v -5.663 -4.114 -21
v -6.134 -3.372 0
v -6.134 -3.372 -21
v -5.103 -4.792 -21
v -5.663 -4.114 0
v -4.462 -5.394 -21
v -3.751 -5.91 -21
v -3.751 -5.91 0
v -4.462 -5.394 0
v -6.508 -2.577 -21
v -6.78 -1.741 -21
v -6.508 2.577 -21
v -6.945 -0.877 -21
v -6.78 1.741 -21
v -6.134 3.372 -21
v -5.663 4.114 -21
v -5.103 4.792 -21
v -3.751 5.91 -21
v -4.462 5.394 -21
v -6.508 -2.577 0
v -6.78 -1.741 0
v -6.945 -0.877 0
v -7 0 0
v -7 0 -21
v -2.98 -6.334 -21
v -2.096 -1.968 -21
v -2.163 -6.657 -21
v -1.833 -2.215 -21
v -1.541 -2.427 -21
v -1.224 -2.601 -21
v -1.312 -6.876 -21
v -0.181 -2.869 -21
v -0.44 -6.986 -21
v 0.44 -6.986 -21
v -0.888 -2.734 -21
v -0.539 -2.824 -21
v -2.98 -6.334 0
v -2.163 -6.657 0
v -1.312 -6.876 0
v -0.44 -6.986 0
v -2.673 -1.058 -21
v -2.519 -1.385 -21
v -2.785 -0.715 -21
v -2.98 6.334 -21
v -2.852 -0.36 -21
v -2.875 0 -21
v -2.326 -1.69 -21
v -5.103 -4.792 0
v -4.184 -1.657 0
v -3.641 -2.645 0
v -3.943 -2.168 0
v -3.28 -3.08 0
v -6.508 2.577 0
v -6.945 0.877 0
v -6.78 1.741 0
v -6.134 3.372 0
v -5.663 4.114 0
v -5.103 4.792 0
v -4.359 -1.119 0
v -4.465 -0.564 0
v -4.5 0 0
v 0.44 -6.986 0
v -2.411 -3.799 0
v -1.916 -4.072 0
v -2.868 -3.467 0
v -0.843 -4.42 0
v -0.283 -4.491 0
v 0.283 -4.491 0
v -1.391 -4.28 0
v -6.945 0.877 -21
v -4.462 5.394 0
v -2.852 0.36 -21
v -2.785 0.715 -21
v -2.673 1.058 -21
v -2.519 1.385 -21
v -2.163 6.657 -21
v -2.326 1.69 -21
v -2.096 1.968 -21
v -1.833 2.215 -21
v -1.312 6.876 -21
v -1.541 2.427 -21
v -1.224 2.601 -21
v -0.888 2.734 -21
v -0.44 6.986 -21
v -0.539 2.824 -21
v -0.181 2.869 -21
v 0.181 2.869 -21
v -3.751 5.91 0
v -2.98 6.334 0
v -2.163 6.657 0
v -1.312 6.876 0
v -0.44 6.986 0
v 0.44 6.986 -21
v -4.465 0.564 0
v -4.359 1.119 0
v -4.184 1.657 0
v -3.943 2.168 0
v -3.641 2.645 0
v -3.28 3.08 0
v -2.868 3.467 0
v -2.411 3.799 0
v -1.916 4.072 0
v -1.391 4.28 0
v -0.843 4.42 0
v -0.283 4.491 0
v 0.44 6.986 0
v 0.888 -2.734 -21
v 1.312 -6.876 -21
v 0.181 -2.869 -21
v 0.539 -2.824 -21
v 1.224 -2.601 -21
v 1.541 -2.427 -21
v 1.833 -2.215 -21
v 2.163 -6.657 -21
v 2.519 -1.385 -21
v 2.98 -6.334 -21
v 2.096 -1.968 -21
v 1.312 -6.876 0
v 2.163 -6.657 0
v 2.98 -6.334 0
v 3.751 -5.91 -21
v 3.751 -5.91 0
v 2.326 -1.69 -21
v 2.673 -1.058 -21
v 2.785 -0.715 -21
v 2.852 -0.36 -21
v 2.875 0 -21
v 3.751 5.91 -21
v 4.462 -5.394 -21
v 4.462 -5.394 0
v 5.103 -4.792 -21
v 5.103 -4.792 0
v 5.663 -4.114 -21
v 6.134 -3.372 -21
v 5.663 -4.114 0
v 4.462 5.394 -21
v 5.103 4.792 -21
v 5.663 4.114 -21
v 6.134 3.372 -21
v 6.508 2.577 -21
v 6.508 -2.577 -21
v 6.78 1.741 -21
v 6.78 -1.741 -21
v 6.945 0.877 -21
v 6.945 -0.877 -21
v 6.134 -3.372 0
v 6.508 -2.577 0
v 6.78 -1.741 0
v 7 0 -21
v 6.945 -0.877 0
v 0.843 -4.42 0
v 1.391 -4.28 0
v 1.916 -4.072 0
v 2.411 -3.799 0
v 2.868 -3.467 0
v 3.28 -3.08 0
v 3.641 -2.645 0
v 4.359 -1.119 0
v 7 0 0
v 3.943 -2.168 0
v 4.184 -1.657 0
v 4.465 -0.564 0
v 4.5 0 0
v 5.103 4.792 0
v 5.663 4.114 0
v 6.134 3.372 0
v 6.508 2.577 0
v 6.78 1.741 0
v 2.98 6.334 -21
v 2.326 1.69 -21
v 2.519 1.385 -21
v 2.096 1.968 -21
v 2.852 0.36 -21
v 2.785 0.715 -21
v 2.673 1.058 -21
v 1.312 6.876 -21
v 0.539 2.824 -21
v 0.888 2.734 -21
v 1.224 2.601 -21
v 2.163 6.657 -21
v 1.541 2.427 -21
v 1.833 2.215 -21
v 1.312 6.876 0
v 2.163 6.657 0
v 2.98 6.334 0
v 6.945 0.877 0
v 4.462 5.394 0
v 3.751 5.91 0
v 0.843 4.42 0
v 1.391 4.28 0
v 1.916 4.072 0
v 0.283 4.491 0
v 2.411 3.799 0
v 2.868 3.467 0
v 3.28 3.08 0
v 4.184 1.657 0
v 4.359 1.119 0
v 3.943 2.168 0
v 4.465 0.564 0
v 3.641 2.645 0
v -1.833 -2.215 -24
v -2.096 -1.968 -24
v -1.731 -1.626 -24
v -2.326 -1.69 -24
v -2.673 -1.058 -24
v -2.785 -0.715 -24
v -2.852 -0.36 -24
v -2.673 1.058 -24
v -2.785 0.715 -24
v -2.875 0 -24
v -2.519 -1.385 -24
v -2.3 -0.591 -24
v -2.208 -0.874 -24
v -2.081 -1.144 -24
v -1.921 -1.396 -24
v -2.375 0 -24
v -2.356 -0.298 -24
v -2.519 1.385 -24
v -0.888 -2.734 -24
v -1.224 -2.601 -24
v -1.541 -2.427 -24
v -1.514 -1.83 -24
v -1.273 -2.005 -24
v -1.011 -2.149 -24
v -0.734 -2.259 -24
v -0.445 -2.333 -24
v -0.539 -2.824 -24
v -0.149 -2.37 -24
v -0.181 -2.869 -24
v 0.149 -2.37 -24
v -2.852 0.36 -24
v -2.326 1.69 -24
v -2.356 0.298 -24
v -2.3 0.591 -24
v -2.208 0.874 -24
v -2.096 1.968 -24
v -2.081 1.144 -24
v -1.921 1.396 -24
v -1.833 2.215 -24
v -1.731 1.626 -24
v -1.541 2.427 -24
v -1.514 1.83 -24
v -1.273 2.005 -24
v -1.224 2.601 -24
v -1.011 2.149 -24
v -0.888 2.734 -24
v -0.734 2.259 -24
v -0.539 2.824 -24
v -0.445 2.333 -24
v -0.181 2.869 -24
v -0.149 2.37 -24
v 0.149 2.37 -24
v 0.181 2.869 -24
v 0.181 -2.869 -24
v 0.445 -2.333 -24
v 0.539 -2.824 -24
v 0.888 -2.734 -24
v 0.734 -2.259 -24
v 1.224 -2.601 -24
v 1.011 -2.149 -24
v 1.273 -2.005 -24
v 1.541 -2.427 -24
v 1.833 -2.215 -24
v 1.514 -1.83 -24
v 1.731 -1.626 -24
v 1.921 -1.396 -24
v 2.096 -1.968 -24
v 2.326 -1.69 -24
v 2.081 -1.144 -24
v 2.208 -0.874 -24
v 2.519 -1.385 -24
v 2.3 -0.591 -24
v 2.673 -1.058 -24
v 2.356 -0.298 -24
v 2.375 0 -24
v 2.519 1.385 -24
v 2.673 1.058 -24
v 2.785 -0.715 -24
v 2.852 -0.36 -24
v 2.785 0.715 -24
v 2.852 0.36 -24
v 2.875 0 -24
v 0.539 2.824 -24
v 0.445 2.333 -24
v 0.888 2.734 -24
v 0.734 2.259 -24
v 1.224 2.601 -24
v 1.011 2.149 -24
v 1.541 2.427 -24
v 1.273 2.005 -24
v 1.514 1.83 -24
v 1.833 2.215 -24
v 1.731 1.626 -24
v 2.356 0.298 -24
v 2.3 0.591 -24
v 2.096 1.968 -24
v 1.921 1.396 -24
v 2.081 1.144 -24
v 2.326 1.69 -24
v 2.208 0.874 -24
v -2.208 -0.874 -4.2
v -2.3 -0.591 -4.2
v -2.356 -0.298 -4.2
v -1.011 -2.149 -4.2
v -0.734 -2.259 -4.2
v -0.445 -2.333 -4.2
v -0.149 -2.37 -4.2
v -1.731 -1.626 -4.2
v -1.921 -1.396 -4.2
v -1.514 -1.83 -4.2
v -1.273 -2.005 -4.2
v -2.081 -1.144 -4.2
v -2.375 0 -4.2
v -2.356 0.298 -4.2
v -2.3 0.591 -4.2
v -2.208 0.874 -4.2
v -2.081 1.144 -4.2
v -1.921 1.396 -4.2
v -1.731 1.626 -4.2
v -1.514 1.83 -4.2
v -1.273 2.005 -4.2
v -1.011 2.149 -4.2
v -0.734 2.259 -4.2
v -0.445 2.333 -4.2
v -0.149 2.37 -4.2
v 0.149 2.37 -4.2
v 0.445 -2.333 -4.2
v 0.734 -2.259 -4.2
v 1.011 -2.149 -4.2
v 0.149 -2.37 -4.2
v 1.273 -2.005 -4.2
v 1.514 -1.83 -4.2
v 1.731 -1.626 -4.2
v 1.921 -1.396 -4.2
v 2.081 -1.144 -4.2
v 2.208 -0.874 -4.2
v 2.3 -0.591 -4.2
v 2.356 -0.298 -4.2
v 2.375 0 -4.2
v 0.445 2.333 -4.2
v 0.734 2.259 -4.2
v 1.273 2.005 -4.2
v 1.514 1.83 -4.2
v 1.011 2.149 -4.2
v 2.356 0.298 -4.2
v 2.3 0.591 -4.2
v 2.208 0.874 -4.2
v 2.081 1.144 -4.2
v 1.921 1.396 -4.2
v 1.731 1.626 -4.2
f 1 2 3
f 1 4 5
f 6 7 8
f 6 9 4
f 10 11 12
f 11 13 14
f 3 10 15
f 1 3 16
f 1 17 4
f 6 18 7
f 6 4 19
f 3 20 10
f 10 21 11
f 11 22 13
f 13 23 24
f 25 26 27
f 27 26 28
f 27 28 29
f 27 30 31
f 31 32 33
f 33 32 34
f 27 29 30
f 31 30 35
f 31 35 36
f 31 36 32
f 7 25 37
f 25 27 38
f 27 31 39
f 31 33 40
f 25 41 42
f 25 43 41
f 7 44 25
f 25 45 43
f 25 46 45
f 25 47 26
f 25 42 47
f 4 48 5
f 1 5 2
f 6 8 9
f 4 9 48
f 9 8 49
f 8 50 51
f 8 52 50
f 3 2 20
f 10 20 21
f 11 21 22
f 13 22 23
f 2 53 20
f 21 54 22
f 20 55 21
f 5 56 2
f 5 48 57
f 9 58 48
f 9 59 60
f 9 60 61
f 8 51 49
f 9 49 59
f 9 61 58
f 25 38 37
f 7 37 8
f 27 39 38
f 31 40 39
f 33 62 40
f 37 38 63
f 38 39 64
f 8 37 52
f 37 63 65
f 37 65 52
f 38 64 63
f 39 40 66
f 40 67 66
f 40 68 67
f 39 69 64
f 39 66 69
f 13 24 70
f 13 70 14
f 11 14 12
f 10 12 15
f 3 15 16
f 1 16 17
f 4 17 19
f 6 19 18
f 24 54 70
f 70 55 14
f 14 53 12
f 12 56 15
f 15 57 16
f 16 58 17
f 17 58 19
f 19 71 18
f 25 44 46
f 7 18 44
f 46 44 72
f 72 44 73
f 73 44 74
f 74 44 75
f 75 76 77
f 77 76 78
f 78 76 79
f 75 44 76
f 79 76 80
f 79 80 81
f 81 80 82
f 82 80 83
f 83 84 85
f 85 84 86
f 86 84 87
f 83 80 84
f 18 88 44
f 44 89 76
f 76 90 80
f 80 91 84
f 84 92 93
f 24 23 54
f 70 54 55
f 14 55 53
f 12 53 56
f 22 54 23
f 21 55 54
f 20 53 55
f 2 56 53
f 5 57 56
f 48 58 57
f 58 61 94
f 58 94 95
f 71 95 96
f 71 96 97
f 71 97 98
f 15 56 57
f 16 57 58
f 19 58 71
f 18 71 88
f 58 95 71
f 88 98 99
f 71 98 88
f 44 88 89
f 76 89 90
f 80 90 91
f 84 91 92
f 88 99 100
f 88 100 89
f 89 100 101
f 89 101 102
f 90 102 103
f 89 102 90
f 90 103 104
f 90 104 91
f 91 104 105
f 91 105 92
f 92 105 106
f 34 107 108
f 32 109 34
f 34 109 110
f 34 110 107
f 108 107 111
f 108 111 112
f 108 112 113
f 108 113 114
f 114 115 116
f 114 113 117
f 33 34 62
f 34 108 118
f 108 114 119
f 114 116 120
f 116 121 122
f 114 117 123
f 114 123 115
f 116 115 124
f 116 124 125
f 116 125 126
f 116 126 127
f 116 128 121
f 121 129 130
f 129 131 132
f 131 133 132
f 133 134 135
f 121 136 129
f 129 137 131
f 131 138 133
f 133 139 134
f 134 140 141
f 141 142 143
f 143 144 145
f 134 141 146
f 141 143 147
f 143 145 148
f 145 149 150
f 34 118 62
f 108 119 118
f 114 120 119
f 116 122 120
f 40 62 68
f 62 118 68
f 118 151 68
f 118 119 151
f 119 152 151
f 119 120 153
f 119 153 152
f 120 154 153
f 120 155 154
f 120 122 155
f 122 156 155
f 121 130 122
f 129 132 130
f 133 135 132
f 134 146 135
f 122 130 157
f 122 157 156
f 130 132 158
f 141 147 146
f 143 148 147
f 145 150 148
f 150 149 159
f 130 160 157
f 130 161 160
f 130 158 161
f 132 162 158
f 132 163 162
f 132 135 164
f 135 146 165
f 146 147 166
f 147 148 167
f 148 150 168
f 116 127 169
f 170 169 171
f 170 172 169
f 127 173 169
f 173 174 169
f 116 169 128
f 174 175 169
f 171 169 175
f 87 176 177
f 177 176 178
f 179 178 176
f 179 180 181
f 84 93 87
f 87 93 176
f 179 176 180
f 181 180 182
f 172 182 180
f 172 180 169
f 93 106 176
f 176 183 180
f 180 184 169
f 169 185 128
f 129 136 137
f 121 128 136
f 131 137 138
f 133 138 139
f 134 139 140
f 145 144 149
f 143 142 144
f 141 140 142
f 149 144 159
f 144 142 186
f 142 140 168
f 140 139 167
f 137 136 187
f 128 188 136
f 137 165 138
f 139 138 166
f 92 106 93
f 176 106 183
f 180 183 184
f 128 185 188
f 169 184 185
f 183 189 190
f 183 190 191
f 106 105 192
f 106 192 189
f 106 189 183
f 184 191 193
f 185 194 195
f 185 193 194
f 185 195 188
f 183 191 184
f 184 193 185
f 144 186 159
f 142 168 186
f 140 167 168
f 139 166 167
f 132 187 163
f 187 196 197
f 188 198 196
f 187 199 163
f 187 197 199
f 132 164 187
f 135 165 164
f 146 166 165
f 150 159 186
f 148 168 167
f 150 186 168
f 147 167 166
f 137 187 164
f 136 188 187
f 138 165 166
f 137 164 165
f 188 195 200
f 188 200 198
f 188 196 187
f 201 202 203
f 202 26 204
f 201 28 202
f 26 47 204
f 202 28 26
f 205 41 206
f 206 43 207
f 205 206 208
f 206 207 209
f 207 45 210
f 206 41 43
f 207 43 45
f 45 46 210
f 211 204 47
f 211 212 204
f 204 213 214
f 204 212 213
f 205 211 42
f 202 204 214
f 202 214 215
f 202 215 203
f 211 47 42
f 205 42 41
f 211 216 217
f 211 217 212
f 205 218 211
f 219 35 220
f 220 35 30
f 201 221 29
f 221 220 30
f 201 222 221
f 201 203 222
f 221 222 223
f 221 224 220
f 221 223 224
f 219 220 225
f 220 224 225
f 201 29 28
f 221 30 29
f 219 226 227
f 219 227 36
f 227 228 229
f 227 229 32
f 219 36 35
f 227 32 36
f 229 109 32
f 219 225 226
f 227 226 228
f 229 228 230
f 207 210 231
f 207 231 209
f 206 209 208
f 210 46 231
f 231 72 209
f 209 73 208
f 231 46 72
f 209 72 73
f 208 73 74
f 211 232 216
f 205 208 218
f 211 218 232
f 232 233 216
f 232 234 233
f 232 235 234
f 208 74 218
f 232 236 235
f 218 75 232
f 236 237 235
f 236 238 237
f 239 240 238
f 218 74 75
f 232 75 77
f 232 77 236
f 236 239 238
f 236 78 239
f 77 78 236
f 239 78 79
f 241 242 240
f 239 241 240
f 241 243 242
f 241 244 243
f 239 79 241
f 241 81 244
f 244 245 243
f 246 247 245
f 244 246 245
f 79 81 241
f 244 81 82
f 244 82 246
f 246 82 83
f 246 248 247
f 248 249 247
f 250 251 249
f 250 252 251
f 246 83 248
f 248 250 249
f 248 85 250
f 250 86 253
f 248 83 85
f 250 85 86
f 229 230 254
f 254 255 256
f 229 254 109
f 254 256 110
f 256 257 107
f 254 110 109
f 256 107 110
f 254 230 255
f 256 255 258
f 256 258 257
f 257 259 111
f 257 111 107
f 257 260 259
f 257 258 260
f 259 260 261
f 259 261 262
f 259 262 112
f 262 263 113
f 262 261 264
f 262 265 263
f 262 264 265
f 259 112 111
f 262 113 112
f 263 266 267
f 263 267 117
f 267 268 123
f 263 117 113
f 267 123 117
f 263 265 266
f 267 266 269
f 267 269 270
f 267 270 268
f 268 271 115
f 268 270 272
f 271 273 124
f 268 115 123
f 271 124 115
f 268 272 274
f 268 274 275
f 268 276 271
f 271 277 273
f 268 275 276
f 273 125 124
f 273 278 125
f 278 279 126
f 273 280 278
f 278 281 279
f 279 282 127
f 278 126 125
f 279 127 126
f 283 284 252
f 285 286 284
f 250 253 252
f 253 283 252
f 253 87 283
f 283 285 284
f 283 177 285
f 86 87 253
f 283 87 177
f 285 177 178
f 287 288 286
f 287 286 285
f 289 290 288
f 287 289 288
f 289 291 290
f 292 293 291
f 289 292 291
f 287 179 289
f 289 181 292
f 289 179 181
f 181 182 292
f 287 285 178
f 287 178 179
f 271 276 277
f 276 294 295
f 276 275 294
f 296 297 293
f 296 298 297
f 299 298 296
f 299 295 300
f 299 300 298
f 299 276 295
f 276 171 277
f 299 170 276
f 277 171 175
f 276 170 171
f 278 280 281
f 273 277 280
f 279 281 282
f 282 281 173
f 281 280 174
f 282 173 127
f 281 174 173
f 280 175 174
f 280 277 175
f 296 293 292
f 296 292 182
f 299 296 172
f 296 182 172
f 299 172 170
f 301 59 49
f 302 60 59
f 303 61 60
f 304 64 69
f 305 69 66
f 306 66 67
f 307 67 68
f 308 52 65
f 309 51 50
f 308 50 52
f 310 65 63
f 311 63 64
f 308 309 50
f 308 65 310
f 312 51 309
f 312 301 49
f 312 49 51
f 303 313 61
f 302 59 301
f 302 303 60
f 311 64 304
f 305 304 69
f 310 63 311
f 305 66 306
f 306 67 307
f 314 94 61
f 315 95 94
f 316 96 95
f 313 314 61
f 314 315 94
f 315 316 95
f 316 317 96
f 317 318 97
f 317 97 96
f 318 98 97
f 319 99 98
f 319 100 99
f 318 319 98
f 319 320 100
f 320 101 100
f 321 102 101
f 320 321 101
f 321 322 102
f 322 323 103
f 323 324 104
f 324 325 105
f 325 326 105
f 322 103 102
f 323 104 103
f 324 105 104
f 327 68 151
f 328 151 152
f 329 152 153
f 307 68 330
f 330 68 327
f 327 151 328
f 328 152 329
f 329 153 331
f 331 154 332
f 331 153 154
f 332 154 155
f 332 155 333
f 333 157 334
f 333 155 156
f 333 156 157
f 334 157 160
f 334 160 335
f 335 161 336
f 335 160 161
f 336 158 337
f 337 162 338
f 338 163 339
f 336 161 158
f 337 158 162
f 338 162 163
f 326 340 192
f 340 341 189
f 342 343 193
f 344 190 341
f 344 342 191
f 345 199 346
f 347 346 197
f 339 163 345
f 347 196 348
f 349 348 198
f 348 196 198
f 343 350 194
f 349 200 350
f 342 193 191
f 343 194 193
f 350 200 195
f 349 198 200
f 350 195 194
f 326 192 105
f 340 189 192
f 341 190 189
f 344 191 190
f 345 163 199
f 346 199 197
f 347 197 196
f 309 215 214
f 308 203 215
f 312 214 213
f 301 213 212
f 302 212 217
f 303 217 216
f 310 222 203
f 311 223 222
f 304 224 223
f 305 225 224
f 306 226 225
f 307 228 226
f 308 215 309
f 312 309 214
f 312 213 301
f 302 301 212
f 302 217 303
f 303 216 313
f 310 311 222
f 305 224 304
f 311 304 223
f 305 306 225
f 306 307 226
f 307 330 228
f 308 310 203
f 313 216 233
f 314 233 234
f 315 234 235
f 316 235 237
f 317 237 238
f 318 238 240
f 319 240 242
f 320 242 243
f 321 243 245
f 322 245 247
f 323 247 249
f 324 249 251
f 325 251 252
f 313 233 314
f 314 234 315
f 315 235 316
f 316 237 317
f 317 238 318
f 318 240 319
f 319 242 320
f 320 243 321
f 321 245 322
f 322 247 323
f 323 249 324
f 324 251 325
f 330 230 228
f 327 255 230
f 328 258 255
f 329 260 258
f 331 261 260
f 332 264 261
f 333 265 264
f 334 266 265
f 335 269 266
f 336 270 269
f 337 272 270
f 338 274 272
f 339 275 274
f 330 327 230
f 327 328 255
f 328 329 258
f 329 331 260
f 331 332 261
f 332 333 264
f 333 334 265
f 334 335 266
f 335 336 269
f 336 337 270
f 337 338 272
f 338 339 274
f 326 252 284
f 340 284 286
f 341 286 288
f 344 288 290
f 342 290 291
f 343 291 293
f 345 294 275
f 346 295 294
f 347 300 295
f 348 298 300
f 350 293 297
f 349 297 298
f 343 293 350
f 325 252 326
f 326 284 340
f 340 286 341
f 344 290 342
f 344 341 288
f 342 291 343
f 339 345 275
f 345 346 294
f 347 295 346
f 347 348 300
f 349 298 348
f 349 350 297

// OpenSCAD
$fn = 50;


difference() {
	union() {
		translate(v = [0, 0, -21.0000000000]) {
			cylinder(h = 21, r = 7.0000000000);
		}
		#translate(v = [0, 0, -24.0000000000]) {
			cylinder(h = 24, r = 2.8750000000);
		}
	}
	union() {
		translate(v = [0, 0, 0]) {
			rotate(a = [0, 0, 0]) {
				difference() {
					union() {
						translate(v = [0, 0, -24.0000000000]) {
							cylinder(h = 24, r = 2.2500000000);
						}
						translate(v = [0, 0, -4.2000000000]) {
							cylinder(h = 4.2000000000, r1 = 2.3750000000, r2 = 4.5000000000);
						}
						translate(v = [0, 0, -24.0000000000]) {
							cylinder(h = 24, r = 2.3750000000);
						}
						translate(v = [0, 0, -24.0000000000]) {
							cylinder(h = 24, r = 2.2500000000);
						}
					}
					union();
				}
			}
		}
	}
}
